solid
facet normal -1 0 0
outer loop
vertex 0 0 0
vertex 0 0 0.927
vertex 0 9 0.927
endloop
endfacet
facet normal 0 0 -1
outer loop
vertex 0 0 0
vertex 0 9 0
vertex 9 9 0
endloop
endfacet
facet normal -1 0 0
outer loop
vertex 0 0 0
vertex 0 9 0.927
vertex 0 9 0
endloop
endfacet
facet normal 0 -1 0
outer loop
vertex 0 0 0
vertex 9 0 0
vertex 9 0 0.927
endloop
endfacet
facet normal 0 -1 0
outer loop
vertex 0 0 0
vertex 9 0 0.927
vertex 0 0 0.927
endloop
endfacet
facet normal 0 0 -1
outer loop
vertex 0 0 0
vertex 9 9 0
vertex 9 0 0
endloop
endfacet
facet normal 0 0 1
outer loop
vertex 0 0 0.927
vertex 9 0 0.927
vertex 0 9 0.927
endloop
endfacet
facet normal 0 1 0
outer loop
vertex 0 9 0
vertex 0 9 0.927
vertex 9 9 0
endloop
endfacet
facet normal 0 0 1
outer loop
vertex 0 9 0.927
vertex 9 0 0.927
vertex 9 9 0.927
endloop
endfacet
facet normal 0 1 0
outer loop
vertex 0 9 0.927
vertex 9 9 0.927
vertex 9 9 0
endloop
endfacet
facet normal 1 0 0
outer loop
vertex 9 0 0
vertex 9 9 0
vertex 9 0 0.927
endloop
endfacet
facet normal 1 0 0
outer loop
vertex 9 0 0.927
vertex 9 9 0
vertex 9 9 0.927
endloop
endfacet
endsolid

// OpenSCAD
/* Warning, this is a very basic generator with a lot of approximation 
input data : [VGQFN, PSX, 9x9x0.927mm, 64, , D, C04-00530D]
generated by com.zoubworld.electronics.cad.model3d.Basic
Date : Sun Feb 15 10:50:48 CET 2026
*/

//body
color("black")
translate([0,0,0])
cube([9.0,9.0,0.927], center=false);
